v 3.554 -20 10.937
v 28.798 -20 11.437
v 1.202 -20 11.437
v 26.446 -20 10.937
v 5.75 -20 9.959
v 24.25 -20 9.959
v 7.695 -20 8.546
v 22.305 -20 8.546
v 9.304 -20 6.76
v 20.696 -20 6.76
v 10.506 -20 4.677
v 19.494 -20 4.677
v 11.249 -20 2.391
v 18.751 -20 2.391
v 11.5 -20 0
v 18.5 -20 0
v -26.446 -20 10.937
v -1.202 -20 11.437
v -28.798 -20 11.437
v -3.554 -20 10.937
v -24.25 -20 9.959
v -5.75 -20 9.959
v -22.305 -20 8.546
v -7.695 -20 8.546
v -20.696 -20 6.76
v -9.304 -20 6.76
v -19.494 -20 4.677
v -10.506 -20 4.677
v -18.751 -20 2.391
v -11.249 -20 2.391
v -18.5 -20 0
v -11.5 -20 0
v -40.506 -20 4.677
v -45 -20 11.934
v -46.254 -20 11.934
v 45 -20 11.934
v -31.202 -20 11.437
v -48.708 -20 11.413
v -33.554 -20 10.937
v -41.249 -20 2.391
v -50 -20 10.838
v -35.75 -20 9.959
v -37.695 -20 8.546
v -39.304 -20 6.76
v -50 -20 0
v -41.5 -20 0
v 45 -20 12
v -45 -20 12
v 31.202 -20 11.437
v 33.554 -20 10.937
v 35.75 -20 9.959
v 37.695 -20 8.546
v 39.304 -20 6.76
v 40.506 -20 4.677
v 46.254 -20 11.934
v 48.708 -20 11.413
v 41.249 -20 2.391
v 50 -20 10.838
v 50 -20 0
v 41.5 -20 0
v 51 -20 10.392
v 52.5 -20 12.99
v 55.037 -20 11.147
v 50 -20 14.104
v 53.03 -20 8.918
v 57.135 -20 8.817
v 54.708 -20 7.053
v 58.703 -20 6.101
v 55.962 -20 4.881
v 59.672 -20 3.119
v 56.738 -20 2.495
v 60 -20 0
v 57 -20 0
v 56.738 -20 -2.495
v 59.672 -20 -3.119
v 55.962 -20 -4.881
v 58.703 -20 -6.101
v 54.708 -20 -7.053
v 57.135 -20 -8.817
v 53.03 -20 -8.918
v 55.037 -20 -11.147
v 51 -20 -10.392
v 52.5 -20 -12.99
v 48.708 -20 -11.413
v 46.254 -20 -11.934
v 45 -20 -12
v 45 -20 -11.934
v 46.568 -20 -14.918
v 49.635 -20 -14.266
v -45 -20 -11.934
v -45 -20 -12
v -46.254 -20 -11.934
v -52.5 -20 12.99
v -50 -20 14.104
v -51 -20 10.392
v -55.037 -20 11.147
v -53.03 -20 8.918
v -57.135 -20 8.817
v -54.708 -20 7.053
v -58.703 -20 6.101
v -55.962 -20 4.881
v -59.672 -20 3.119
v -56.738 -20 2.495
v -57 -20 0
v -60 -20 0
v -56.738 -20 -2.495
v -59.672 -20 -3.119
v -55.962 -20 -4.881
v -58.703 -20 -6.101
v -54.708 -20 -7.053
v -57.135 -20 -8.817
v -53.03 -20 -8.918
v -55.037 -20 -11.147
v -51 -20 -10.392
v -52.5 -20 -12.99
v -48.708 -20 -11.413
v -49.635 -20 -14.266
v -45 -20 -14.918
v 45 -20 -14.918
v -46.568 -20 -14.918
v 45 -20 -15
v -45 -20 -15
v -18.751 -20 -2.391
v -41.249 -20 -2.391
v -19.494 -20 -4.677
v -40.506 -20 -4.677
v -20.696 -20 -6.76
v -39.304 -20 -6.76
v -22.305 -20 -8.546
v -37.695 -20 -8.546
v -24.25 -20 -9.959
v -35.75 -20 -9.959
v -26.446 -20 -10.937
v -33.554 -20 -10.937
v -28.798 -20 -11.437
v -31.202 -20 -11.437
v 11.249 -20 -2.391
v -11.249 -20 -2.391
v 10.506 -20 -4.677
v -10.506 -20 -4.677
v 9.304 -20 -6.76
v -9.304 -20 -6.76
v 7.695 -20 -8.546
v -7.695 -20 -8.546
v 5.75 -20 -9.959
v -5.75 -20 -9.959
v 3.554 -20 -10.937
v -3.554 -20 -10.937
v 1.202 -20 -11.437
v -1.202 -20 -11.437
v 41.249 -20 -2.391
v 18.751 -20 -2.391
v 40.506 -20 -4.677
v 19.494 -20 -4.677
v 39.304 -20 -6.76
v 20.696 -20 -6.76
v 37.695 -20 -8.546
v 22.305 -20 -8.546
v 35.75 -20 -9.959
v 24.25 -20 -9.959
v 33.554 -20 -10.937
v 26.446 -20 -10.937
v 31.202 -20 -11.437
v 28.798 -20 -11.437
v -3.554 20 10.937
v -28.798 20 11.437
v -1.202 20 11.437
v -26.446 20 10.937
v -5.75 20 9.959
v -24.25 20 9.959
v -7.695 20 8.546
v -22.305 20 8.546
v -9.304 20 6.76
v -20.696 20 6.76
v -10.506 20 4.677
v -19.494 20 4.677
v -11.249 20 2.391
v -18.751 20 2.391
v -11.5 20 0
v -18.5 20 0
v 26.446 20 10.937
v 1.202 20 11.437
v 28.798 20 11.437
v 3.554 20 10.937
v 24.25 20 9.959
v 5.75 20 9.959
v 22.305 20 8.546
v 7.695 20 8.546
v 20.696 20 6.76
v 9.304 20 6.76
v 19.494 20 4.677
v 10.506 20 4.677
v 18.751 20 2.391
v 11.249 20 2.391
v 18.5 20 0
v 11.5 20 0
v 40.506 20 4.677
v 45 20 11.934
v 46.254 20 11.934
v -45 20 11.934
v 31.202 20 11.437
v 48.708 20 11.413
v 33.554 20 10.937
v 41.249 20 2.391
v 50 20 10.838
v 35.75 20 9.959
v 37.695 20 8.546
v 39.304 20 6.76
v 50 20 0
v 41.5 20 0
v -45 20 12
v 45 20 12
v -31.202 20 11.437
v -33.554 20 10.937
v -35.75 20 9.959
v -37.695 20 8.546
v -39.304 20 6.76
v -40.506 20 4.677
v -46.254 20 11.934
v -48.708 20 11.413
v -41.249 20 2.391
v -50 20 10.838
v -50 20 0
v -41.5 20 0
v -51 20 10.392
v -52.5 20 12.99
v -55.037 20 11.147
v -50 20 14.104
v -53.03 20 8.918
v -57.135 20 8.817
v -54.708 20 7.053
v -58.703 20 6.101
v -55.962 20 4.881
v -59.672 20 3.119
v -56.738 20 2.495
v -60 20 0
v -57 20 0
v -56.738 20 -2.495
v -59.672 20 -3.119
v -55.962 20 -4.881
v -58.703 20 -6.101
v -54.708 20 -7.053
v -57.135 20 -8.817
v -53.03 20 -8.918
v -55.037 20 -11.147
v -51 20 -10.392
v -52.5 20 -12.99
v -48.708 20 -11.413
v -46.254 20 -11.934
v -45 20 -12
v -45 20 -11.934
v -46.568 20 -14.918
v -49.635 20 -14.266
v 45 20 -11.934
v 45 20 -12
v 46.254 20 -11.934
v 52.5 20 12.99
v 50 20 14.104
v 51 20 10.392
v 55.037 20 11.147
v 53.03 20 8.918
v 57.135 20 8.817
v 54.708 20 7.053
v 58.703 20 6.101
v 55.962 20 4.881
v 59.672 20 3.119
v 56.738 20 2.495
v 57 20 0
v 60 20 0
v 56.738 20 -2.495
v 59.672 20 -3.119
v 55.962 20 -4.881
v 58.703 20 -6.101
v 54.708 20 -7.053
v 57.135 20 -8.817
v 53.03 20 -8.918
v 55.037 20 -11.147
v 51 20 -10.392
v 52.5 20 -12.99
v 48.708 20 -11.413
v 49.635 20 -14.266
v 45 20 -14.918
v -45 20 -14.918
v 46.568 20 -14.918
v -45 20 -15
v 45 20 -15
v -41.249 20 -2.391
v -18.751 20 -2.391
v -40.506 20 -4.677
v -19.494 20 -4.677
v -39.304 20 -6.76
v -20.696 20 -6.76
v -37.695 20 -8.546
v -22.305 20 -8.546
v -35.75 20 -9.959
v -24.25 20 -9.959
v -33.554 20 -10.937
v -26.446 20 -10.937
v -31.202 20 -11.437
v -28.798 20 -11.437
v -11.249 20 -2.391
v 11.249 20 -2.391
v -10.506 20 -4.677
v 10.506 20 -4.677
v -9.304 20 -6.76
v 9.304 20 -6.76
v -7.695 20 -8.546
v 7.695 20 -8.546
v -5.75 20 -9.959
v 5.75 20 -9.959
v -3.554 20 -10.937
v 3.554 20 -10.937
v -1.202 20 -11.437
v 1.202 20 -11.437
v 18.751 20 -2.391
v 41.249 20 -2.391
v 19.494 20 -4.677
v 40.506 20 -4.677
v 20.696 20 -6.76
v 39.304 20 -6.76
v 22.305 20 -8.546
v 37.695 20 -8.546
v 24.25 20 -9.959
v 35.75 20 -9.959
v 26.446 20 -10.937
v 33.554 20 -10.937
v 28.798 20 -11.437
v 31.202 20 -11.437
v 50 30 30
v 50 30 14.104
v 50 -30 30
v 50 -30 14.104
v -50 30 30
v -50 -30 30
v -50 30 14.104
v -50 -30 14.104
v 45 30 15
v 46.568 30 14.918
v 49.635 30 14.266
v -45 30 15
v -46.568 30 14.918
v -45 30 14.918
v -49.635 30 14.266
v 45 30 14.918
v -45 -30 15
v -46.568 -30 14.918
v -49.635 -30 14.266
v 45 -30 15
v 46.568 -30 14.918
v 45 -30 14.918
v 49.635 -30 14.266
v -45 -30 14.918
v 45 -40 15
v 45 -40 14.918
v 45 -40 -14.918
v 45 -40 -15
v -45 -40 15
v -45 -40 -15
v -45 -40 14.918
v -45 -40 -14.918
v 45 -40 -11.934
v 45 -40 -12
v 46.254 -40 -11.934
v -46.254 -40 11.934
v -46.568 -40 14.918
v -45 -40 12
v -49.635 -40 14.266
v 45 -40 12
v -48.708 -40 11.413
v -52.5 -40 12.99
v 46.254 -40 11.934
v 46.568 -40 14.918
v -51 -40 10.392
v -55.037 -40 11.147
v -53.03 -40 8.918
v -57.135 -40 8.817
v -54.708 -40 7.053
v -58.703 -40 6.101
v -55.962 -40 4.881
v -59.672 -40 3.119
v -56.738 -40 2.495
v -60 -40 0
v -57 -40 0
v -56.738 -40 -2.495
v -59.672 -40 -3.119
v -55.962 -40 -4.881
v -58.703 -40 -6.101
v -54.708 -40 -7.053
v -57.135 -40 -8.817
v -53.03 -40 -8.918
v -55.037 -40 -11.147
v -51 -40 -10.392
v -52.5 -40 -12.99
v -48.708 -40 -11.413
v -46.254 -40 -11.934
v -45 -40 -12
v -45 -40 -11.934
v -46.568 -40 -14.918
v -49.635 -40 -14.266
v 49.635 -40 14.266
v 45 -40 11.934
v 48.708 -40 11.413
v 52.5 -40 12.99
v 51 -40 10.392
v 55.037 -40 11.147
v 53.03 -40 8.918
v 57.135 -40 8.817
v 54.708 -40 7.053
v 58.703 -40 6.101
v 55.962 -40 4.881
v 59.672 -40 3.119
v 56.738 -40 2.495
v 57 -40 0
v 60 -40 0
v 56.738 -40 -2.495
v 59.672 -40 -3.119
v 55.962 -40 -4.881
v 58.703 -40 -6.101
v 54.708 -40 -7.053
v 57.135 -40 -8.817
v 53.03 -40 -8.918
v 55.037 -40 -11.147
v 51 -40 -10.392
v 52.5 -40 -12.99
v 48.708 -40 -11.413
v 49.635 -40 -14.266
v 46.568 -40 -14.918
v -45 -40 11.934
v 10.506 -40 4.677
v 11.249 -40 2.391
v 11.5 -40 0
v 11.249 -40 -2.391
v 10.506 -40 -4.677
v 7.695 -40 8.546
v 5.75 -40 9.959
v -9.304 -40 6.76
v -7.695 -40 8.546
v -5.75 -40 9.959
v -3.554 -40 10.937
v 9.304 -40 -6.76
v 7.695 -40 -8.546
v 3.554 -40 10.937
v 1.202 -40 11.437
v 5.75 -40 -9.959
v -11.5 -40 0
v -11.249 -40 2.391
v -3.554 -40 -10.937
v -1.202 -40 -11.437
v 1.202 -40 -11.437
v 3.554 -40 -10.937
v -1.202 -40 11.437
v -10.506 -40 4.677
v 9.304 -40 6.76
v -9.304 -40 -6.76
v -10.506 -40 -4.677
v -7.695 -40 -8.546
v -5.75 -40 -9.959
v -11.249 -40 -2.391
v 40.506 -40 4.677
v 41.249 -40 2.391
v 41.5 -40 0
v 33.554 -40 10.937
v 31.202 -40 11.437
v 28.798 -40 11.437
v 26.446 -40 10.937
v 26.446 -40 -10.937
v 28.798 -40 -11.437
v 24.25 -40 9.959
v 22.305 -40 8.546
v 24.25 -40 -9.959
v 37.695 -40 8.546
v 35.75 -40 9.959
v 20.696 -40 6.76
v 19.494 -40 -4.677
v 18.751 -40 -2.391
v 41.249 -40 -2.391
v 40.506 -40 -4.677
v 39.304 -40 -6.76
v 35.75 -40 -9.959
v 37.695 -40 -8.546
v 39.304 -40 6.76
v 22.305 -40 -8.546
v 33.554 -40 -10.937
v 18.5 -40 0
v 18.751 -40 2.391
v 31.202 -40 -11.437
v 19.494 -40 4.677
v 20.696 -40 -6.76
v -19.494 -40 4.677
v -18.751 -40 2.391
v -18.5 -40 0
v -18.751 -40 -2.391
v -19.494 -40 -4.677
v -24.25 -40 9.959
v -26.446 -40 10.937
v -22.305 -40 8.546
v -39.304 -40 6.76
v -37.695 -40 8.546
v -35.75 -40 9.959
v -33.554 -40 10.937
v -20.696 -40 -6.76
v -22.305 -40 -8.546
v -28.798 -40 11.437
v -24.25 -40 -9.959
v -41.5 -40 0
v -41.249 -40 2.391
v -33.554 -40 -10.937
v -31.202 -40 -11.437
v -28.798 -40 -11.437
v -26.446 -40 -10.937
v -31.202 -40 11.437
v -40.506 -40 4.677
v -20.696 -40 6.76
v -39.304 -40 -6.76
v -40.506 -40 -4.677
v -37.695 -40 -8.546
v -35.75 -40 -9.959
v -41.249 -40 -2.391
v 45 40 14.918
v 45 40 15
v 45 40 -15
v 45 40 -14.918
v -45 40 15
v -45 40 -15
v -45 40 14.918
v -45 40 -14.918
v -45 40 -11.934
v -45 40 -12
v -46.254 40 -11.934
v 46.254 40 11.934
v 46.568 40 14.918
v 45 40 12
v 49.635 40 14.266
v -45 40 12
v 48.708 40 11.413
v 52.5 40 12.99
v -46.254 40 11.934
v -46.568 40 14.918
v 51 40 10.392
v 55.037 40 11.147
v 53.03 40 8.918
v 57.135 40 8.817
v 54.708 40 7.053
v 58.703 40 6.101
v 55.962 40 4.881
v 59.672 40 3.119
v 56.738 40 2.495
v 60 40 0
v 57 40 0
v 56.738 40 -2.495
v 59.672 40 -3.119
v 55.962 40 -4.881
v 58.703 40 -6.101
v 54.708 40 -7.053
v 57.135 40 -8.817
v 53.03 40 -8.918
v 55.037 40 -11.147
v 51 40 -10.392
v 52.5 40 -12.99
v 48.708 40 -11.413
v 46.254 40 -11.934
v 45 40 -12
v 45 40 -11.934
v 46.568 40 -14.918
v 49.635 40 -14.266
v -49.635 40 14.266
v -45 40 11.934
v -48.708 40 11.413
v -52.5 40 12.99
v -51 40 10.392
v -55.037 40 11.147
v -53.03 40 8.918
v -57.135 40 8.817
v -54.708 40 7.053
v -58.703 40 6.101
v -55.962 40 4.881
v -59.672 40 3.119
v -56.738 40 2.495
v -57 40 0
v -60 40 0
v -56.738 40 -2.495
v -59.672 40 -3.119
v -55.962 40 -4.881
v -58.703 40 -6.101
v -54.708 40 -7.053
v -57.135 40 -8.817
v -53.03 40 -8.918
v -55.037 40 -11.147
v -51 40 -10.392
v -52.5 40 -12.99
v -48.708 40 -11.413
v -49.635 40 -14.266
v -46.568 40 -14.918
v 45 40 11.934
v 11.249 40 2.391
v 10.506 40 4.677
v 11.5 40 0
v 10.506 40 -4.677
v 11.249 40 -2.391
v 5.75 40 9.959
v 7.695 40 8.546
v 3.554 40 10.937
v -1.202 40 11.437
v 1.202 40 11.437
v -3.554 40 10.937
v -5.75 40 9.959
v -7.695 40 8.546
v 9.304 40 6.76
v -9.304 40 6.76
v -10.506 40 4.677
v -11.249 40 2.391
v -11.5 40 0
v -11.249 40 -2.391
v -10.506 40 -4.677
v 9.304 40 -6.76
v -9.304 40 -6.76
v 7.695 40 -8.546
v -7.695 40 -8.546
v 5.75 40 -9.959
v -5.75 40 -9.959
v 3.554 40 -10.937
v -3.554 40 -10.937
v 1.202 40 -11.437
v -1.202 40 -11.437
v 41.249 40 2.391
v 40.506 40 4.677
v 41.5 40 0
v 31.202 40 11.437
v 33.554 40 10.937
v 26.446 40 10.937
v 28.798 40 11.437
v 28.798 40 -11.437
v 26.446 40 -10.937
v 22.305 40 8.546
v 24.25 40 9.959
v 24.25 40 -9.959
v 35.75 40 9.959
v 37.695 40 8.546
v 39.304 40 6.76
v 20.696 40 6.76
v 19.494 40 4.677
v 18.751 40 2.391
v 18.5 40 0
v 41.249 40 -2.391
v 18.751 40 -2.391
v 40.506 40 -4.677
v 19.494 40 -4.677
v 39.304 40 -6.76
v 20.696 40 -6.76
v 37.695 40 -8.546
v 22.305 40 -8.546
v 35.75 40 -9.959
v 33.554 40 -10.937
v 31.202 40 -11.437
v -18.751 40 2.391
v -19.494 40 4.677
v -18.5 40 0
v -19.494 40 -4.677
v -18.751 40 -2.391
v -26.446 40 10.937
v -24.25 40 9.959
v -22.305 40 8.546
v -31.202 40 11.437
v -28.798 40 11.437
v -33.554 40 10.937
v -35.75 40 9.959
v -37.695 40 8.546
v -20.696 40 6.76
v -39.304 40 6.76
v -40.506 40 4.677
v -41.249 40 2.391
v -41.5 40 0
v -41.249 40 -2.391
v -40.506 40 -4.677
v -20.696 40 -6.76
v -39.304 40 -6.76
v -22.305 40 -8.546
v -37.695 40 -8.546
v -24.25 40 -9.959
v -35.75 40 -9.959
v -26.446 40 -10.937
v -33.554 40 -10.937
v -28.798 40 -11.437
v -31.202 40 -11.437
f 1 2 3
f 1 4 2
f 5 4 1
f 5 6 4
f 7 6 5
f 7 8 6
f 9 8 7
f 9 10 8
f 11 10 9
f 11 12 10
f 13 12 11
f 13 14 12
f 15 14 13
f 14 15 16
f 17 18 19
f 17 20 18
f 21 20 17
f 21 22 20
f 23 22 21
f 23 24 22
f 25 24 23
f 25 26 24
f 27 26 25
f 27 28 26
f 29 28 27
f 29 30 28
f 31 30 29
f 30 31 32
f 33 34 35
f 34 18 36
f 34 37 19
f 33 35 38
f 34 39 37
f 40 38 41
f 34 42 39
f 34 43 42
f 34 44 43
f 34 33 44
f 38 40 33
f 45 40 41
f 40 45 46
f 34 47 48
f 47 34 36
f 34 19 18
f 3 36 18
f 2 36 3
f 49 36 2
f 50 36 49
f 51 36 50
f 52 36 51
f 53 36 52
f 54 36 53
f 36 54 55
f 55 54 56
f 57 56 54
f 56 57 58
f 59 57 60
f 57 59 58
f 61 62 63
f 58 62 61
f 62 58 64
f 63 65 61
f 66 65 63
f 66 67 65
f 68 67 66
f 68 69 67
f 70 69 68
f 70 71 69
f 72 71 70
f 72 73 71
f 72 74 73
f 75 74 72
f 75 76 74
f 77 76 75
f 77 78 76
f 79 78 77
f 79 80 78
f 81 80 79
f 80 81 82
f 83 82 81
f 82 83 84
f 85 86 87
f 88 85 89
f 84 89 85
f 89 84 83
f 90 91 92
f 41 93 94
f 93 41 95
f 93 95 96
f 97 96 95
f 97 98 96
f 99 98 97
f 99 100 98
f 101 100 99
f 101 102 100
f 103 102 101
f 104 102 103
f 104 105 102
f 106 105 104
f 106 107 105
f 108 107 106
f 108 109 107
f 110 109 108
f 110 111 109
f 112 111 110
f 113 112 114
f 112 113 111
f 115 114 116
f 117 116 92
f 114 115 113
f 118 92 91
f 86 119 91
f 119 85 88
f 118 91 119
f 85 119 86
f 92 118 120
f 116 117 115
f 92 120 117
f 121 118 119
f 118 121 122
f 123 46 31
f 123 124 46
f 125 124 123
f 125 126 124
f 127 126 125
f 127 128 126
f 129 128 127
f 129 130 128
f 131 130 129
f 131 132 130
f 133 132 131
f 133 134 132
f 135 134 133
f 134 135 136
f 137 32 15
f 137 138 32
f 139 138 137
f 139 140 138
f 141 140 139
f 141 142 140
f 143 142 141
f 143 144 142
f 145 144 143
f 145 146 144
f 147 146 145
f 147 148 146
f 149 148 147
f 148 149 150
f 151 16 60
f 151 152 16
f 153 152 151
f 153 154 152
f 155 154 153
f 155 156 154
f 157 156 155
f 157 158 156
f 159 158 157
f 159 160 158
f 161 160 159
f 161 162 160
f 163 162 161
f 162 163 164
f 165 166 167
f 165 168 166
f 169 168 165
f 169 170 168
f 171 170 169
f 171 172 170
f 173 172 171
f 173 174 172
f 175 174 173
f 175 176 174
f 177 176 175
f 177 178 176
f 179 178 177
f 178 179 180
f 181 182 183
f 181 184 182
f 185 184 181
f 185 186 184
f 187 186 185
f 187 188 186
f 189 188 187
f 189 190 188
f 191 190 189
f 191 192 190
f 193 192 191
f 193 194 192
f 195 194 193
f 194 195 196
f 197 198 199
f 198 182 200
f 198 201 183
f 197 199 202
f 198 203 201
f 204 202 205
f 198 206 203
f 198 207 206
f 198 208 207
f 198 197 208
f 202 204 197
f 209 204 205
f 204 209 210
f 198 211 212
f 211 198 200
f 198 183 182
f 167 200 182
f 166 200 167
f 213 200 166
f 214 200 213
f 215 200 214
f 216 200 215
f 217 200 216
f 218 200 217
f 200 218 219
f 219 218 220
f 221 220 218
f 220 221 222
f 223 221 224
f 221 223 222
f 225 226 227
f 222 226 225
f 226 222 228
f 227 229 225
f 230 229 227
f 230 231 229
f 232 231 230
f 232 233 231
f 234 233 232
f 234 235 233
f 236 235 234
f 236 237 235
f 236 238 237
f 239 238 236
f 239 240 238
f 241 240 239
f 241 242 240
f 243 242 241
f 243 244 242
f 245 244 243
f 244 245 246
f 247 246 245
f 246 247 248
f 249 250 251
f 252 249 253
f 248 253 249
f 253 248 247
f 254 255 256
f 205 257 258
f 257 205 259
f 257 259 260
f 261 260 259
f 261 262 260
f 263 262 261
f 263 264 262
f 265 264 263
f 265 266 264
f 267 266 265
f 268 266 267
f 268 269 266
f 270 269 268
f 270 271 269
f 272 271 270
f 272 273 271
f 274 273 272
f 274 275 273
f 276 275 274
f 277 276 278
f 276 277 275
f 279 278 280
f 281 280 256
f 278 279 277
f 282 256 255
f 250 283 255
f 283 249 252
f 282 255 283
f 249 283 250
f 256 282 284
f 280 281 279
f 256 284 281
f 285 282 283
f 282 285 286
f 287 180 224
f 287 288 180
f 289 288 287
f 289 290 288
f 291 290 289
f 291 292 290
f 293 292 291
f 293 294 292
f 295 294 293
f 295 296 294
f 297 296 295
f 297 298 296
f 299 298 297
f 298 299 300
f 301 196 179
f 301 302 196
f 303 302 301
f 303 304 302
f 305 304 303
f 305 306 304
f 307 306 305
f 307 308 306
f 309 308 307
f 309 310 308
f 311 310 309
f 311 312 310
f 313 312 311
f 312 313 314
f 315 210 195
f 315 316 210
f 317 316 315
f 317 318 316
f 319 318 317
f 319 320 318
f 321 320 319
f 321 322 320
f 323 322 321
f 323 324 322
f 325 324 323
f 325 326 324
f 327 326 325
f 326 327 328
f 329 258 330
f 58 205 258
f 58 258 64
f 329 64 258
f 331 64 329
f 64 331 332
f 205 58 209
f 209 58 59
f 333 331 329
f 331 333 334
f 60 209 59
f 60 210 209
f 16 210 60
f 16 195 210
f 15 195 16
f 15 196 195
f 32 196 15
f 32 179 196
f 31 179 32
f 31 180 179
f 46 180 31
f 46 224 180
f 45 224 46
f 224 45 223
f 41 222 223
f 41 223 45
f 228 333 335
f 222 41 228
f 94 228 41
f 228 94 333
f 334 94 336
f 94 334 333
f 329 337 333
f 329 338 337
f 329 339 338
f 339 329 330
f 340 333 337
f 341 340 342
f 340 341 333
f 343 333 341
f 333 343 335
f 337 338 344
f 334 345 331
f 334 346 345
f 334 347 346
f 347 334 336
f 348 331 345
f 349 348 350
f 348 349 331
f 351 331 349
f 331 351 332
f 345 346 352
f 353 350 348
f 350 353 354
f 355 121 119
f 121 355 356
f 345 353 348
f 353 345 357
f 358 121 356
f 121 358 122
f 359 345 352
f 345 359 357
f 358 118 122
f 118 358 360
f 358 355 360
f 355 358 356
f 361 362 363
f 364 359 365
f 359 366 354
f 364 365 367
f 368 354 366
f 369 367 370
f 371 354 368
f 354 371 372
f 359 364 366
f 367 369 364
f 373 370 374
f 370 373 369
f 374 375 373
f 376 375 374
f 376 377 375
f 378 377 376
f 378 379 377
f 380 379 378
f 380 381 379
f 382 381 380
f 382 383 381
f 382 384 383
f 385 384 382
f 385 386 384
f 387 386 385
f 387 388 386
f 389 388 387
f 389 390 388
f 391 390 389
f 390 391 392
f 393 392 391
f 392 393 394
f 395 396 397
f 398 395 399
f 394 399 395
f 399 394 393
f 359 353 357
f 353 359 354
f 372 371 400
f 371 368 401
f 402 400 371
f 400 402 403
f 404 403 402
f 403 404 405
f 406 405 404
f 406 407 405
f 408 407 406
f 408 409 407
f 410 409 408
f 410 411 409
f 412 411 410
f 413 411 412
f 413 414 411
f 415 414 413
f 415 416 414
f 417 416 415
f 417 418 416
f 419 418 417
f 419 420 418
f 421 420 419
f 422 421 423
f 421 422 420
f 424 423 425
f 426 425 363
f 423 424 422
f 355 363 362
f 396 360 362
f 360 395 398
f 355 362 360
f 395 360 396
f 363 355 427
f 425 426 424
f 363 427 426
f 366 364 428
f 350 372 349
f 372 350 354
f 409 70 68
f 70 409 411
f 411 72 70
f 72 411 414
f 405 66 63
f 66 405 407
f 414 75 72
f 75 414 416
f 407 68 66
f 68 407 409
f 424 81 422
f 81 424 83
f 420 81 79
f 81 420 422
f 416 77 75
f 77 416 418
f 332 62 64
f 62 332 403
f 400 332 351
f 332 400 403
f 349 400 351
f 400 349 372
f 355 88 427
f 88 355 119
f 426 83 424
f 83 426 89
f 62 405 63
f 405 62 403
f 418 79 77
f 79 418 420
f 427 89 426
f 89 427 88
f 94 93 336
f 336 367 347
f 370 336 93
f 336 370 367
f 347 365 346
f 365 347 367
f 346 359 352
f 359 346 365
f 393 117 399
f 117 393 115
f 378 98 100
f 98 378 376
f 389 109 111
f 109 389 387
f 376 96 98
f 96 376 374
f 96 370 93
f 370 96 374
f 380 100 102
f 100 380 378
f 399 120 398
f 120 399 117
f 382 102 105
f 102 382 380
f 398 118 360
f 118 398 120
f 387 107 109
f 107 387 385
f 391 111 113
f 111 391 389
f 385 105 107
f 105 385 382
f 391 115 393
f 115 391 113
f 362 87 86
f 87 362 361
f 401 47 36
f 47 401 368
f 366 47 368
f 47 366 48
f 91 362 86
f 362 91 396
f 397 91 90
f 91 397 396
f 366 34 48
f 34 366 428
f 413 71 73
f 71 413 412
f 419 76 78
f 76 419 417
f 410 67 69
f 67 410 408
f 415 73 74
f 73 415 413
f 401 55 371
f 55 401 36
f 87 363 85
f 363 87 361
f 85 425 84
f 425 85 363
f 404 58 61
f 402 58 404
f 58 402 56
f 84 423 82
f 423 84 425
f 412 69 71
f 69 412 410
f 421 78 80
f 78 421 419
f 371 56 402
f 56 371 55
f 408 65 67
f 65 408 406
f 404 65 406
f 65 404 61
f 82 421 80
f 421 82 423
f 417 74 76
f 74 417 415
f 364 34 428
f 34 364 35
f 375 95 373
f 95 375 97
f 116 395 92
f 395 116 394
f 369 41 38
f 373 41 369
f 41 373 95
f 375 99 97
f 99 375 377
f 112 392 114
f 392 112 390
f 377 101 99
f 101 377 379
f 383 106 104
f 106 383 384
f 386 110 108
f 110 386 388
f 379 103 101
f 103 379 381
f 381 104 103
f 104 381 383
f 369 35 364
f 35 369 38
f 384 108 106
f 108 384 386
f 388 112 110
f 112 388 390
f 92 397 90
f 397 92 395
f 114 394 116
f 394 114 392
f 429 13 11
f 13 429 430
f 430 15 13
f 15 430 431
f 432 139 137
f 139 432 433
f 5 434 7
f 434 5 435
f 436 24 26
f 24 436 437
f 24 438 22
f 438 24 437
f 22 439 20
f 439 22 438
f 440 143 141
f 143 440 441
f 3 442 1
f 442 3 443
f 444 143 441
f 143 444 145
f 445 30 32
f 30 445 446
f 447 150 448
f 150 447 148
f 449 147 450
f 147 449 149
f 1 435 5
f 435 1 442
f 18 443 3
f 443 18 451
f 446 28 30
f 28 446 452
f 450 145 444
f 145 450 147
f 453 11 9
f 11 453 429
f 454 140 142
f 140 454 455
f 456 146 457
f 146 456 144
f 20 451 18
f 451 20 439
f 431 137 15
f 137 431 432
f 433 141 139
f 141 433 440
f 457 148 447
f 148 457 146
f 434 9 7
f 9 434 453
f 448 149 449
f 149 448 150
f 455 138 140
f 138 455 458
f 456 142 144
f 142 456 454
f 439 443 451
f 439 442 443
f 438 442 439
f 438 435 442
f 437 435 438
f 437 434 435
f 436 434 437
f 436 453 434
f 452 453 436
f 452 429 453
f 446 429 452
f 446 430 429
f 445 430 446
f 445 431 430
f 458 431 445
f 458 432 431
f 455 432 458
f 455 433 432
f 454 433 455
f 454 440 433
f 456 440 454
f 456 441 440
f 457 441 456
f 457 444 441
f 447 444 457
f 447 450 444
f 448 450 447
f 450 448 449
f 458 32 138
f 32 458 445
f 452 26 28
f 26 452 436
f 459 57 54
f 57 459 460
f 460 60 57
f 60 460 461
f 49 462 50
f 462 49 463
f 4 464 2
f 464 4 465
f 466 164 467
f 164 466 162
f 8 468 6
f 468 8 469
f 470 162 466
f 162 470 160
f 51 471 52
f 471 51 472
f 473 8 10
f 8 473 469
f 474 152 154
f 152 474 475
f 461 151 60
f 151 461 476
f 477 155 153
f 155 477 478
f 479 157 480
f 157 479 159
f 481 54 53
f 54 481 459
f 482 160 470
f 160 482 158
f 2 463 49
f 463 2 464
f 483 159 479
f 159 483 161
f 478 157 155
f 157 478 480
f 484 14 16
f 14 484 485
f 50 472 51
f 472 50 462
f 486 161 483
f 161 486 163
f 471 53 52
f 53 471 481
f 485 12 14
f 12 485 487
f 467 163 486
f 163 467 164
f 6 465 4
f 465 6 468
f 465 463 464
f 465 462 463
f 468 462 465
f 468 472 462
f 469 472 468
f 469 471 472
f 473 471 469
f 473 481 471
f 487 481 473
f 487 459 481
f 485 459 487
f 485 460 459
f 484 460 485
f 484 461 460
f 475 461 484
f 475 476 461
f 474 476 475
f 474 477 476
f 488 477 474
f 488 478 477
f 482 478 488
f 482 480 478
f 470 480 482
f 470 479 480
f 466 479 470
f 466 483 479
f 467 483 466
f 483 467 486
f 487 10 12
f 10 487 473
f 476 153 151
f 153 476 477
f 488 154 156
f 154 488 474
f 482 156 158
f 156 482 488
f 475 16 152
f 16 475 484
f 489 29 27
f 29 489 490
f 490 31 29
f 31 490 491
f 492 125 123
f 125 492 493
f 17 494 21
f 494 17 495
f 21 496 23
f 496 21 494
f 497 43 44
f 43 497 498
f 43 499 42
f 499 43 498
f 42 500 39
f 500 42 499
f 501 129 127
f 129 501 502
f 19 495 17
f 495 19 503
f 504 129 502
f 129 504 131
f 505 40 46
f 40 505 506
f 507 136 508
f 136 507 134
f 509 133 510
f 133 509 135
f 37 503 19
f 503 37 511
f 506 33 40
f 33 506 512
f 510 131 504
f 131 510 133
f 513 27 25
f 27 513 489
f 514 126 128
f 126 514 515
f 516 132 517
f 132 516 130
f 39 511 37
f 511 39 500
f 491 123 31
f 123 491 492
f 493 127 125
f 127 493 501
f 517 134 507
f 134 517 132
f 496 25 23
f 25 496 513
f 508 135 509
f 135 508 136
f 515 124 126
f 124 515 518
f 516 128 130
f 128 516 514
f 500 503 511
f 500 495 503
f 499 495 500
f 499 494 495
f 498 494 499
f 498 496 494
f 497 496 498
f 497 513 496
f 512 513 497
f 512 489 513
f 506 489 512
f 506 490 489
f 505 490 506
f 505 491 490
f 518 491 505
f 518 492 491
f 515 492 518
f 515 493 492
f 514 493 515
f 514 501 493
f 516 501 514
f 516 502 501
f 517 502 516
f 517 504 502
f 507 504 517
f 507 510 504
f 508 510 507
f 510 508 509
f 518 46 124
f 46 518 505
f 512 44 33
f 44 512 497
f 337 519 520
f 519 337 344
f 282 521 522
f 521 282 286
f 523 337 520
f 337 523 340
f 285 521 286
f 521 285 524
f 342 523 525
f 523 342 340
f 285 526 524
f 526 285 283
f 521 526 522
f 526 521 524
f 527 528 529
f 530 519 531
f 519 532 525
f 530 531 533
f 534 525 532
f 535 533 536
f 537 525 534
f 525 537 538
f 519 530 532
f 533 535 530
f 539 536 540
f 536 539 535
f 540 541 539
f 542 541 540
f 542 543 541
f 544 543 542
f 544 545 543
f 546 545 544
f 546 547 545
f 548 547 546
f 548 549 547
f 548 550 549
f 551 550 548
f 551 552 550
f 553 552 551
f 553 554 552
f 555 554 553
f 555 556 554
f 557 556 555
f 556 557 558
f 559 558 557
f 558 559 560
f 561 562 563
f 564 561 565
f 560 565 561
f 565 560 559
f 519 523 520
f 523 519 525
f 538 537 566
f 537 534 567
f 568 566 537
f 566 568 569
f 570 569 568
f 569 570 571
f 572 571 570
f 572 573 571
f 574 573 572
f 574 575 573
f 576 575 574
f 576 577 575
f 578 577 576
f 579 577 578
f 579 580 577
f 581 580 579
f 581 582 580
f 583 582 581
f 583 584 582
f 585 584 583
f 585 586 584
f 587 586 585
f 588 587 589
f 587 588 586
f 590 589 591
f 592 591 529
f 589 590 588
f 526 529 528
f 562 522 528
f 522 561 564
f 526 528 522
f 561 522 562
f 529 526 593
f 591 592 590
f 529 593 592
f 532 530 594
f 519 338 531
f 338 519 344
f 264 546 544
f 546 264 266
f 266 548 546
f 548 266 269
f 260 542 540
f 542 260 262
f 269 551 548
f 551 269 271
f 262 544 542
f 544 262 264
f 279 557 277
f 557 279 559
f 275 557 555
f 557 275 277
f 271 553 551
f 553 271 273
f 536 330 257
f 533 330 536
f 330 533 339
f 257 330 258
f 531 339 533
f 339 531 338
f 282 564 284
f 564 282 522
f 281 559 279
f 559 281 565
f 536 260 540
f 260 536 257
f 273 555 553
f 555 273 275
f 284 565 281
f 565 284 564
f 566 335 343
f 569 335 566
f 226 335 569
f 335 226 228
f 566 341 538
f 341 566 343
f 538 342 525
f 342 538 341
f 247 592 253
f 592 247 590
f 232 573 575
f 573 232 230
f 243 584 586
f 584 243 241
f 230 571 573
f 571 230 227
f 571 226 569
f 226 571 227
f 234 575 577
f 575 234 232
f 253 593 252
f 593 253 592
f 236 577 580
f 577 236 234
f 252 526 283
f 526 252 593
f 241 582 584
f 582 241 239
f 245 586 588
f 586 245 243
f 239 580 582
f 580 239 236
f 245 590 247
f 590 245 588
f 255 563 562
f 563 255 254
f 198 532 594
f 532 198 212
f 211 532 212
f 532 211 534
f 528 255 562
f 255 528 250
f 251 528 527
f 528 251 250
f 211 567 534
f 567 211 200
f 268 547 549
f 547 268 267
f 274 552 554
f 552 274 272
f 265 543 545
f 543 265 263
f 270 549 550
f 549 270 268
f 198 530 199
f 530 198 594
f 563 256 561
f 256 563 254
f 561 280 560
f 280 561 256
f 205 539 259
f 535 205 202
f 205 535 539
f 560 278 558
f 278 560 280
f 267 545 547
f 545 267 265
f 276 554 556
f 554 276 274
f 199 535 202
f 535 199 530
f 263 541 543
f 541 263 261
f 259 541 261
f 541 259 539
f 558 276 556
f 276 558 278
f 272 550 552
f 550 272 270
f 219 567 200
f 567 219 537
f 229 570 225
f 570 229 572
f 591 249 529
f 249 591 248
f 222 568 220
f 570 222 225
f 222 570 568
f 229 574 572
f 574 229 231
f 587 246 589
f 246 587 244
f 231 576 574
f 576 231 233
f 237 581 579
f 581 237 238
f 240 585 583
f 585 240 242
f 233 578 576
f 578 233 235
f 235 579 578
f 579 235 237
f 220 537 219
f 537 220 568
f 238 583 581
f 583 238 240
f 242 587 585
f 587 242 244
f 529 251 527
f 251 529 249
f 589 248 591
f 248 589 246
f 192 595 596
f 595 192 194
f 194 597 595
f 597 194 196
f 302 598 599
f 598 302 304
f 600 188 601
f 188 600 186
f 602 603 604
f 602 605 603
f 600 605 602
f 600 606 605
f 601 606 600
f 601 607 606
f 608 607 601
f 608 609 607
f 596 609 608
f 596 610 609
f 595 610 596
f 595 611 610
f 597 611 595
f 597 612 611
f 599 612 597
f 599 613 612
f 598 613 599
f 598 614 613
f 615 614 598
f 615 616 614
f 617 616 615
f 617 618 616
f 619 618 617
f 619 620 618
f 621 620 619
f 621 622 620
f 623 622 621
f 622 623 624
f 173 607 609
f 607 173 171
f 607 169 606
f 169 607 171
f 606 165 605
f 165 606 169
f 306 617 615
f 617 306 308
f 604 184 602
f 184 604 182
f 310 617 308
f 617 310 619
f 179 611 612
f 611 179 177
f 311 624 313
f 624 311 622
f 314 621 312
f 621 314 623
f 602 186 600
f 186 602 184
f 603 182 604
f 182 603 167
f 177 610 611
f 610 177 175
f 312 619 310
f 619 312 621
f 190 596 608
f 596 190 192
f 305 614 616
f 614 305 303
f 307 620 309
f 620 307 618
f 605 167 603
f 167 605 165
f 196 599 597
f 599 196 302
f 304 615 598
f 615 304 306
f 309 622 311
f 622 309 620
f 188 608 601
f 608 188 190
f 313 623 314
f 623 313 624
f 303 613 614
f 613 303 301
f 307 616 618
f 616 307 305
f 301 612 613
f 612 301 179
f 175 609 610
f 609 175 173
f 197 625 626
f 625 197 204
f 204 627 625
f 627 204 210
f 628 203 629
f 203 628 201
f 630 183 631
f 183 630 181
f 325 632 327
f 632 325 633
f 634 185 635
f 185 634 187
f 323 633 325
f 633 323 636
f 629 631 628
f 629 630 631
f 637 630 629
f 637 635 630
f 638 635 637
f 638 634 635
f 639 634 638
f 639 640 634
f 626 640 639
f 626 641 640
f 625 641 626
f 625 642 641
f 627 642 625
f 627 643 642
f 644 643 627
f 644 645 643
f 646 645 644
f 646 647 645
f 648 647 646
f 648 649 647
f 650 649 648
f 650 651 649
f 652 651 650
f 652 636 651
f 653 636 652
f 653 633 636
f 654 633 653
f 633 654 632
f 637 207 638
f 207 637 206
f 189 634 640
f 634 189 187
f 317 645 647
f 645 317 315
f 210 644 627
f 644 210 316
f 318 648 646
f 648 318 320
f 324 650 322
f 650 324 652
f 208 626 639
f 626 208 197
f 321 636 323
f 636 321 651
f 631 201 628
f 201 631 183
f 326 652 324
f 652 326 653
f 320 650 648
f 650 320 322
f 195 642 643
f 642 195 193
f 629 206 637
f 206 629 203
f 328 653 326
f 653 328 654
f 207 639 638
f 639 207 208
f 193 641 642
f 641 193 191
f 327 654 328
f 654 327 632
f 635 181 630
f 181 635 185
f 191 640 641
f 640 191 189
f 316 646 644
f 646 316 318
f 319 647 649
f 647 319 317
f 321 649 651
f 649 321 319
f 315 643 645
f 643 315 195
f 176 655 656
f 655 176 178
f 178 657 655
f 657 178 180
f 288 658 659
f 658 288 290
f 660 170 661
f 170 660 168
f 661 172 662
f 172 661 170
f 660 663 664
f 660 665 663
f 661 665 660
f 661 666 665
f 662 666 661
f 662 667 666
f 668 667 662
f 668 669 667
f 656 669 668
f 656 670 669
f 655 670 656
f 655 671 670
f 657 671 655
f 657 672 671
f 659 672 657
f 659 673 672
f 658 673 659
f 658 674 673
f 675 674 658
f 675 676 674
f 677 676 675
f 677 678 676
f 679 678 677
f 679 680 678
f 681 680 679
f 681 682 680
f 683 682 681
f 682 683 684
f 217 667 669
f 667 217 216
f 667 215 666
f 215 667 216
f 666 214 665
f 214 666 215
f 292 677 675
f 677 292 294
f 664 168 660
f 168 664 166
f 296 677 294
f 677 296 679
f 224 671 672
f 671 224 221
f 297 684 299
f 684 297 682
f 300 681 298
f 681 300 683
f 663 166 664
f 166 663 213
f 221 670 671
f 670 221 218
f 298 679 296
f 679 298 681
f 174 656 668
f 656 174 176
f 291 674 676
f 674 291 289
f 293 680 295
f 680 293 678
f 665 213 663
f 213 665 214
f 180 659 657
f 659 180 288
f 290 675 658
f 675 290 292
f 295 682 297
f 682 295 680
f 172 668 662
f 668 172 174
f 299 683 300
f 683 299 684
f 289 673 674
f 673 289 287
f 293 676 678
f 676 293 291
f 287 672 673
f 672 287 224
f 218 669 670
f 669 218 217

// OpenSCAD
// file: track.scad
// Tank dimensions
tank_length = 100;
tank_width = 60;
tank_height = 30;




module track( track_length, track_width, track_height ){
     cube( [ track_length, track_width, track_height ], true );
     translate( [ track_length / 2, 0, 0 ] )
        wheel( track_width,track_height );
     translate( [ -track_length / 2, 0, 0 ] )
        wheel(track_width,track_height);
}

module wheel( track_width,track_height ){
         translate( [0, track_width/2, 0 ] )
         rotate( [ 90, 0, 0 ] ){
         cylinder( h = track_width, r = track_height / 2 );
    } 
}

module fulltrack( w, h, l ){
    track_width = w;
    track_height = h;
    track_length = l;

    //translate( [ 0, w / 2, 0 ] )
    difference(){
    track( track_length,track_width,tank_height );
    track( track_length,track_width + 1,tank_height * 0.8 );
    }
    
    wheel(track_width,track_height * 1.15);
    translate( [track_length/3,0, 0 ] )
    wheel(track_width,track_height * 1.15);
    translate( [-track_length/3,0, 0 ] )
    wheel(track_width,track_height * 1.15);
} 

module tracks(){
    track_width = 10;
    track_height = tank_height / 1.5;
    track_length = tank_length * 0.9;

    translate( [ 0, -tank_width / 2, 0 ] )
        fulltrack( 20, tank_height / 1.5, tank_length * 0.9);
    
    
    translate( [ 0, tank_width / 2, 0 ] )
        fulltrack( 20, tank_height / 1.5, tank_length * 0.9);
    
}

module trackspace()
{   
    track_width = 20;
    track_height = tank_height / 1.2;
    track_length = tank_length + 1;
    translate( [ 0, -tank_width /  2, 0 ] )
        cube( [ track_length, track_width, track_height ], true );
    
    
    translate( [ 0, tank_width / 2 , 0 ] )
        cube( [ track_length, track_width, track_height ], true );    
}

//trackspace();
tracks();
//track_right();
// main file
// Simple Tank Model in OpenSCAD
use <track.scad>

// Tank dimensions
tank_length = 100;
tank_width = 60;
tank_height = 30;
turret_diameter = 40;
turret_height = 20;
barrel_length = 50;
barrel_diameter = 5;

// Tank body
module tank_body() {
    hull();
}

// Hull
module hull() {
    translate([ 0, 0, tank_height / 2 ] )
        cube( [ tank_length, tank_width, tank_height ], true );
}

difference(){
tank_body();
trackspace();
}
tracks();
